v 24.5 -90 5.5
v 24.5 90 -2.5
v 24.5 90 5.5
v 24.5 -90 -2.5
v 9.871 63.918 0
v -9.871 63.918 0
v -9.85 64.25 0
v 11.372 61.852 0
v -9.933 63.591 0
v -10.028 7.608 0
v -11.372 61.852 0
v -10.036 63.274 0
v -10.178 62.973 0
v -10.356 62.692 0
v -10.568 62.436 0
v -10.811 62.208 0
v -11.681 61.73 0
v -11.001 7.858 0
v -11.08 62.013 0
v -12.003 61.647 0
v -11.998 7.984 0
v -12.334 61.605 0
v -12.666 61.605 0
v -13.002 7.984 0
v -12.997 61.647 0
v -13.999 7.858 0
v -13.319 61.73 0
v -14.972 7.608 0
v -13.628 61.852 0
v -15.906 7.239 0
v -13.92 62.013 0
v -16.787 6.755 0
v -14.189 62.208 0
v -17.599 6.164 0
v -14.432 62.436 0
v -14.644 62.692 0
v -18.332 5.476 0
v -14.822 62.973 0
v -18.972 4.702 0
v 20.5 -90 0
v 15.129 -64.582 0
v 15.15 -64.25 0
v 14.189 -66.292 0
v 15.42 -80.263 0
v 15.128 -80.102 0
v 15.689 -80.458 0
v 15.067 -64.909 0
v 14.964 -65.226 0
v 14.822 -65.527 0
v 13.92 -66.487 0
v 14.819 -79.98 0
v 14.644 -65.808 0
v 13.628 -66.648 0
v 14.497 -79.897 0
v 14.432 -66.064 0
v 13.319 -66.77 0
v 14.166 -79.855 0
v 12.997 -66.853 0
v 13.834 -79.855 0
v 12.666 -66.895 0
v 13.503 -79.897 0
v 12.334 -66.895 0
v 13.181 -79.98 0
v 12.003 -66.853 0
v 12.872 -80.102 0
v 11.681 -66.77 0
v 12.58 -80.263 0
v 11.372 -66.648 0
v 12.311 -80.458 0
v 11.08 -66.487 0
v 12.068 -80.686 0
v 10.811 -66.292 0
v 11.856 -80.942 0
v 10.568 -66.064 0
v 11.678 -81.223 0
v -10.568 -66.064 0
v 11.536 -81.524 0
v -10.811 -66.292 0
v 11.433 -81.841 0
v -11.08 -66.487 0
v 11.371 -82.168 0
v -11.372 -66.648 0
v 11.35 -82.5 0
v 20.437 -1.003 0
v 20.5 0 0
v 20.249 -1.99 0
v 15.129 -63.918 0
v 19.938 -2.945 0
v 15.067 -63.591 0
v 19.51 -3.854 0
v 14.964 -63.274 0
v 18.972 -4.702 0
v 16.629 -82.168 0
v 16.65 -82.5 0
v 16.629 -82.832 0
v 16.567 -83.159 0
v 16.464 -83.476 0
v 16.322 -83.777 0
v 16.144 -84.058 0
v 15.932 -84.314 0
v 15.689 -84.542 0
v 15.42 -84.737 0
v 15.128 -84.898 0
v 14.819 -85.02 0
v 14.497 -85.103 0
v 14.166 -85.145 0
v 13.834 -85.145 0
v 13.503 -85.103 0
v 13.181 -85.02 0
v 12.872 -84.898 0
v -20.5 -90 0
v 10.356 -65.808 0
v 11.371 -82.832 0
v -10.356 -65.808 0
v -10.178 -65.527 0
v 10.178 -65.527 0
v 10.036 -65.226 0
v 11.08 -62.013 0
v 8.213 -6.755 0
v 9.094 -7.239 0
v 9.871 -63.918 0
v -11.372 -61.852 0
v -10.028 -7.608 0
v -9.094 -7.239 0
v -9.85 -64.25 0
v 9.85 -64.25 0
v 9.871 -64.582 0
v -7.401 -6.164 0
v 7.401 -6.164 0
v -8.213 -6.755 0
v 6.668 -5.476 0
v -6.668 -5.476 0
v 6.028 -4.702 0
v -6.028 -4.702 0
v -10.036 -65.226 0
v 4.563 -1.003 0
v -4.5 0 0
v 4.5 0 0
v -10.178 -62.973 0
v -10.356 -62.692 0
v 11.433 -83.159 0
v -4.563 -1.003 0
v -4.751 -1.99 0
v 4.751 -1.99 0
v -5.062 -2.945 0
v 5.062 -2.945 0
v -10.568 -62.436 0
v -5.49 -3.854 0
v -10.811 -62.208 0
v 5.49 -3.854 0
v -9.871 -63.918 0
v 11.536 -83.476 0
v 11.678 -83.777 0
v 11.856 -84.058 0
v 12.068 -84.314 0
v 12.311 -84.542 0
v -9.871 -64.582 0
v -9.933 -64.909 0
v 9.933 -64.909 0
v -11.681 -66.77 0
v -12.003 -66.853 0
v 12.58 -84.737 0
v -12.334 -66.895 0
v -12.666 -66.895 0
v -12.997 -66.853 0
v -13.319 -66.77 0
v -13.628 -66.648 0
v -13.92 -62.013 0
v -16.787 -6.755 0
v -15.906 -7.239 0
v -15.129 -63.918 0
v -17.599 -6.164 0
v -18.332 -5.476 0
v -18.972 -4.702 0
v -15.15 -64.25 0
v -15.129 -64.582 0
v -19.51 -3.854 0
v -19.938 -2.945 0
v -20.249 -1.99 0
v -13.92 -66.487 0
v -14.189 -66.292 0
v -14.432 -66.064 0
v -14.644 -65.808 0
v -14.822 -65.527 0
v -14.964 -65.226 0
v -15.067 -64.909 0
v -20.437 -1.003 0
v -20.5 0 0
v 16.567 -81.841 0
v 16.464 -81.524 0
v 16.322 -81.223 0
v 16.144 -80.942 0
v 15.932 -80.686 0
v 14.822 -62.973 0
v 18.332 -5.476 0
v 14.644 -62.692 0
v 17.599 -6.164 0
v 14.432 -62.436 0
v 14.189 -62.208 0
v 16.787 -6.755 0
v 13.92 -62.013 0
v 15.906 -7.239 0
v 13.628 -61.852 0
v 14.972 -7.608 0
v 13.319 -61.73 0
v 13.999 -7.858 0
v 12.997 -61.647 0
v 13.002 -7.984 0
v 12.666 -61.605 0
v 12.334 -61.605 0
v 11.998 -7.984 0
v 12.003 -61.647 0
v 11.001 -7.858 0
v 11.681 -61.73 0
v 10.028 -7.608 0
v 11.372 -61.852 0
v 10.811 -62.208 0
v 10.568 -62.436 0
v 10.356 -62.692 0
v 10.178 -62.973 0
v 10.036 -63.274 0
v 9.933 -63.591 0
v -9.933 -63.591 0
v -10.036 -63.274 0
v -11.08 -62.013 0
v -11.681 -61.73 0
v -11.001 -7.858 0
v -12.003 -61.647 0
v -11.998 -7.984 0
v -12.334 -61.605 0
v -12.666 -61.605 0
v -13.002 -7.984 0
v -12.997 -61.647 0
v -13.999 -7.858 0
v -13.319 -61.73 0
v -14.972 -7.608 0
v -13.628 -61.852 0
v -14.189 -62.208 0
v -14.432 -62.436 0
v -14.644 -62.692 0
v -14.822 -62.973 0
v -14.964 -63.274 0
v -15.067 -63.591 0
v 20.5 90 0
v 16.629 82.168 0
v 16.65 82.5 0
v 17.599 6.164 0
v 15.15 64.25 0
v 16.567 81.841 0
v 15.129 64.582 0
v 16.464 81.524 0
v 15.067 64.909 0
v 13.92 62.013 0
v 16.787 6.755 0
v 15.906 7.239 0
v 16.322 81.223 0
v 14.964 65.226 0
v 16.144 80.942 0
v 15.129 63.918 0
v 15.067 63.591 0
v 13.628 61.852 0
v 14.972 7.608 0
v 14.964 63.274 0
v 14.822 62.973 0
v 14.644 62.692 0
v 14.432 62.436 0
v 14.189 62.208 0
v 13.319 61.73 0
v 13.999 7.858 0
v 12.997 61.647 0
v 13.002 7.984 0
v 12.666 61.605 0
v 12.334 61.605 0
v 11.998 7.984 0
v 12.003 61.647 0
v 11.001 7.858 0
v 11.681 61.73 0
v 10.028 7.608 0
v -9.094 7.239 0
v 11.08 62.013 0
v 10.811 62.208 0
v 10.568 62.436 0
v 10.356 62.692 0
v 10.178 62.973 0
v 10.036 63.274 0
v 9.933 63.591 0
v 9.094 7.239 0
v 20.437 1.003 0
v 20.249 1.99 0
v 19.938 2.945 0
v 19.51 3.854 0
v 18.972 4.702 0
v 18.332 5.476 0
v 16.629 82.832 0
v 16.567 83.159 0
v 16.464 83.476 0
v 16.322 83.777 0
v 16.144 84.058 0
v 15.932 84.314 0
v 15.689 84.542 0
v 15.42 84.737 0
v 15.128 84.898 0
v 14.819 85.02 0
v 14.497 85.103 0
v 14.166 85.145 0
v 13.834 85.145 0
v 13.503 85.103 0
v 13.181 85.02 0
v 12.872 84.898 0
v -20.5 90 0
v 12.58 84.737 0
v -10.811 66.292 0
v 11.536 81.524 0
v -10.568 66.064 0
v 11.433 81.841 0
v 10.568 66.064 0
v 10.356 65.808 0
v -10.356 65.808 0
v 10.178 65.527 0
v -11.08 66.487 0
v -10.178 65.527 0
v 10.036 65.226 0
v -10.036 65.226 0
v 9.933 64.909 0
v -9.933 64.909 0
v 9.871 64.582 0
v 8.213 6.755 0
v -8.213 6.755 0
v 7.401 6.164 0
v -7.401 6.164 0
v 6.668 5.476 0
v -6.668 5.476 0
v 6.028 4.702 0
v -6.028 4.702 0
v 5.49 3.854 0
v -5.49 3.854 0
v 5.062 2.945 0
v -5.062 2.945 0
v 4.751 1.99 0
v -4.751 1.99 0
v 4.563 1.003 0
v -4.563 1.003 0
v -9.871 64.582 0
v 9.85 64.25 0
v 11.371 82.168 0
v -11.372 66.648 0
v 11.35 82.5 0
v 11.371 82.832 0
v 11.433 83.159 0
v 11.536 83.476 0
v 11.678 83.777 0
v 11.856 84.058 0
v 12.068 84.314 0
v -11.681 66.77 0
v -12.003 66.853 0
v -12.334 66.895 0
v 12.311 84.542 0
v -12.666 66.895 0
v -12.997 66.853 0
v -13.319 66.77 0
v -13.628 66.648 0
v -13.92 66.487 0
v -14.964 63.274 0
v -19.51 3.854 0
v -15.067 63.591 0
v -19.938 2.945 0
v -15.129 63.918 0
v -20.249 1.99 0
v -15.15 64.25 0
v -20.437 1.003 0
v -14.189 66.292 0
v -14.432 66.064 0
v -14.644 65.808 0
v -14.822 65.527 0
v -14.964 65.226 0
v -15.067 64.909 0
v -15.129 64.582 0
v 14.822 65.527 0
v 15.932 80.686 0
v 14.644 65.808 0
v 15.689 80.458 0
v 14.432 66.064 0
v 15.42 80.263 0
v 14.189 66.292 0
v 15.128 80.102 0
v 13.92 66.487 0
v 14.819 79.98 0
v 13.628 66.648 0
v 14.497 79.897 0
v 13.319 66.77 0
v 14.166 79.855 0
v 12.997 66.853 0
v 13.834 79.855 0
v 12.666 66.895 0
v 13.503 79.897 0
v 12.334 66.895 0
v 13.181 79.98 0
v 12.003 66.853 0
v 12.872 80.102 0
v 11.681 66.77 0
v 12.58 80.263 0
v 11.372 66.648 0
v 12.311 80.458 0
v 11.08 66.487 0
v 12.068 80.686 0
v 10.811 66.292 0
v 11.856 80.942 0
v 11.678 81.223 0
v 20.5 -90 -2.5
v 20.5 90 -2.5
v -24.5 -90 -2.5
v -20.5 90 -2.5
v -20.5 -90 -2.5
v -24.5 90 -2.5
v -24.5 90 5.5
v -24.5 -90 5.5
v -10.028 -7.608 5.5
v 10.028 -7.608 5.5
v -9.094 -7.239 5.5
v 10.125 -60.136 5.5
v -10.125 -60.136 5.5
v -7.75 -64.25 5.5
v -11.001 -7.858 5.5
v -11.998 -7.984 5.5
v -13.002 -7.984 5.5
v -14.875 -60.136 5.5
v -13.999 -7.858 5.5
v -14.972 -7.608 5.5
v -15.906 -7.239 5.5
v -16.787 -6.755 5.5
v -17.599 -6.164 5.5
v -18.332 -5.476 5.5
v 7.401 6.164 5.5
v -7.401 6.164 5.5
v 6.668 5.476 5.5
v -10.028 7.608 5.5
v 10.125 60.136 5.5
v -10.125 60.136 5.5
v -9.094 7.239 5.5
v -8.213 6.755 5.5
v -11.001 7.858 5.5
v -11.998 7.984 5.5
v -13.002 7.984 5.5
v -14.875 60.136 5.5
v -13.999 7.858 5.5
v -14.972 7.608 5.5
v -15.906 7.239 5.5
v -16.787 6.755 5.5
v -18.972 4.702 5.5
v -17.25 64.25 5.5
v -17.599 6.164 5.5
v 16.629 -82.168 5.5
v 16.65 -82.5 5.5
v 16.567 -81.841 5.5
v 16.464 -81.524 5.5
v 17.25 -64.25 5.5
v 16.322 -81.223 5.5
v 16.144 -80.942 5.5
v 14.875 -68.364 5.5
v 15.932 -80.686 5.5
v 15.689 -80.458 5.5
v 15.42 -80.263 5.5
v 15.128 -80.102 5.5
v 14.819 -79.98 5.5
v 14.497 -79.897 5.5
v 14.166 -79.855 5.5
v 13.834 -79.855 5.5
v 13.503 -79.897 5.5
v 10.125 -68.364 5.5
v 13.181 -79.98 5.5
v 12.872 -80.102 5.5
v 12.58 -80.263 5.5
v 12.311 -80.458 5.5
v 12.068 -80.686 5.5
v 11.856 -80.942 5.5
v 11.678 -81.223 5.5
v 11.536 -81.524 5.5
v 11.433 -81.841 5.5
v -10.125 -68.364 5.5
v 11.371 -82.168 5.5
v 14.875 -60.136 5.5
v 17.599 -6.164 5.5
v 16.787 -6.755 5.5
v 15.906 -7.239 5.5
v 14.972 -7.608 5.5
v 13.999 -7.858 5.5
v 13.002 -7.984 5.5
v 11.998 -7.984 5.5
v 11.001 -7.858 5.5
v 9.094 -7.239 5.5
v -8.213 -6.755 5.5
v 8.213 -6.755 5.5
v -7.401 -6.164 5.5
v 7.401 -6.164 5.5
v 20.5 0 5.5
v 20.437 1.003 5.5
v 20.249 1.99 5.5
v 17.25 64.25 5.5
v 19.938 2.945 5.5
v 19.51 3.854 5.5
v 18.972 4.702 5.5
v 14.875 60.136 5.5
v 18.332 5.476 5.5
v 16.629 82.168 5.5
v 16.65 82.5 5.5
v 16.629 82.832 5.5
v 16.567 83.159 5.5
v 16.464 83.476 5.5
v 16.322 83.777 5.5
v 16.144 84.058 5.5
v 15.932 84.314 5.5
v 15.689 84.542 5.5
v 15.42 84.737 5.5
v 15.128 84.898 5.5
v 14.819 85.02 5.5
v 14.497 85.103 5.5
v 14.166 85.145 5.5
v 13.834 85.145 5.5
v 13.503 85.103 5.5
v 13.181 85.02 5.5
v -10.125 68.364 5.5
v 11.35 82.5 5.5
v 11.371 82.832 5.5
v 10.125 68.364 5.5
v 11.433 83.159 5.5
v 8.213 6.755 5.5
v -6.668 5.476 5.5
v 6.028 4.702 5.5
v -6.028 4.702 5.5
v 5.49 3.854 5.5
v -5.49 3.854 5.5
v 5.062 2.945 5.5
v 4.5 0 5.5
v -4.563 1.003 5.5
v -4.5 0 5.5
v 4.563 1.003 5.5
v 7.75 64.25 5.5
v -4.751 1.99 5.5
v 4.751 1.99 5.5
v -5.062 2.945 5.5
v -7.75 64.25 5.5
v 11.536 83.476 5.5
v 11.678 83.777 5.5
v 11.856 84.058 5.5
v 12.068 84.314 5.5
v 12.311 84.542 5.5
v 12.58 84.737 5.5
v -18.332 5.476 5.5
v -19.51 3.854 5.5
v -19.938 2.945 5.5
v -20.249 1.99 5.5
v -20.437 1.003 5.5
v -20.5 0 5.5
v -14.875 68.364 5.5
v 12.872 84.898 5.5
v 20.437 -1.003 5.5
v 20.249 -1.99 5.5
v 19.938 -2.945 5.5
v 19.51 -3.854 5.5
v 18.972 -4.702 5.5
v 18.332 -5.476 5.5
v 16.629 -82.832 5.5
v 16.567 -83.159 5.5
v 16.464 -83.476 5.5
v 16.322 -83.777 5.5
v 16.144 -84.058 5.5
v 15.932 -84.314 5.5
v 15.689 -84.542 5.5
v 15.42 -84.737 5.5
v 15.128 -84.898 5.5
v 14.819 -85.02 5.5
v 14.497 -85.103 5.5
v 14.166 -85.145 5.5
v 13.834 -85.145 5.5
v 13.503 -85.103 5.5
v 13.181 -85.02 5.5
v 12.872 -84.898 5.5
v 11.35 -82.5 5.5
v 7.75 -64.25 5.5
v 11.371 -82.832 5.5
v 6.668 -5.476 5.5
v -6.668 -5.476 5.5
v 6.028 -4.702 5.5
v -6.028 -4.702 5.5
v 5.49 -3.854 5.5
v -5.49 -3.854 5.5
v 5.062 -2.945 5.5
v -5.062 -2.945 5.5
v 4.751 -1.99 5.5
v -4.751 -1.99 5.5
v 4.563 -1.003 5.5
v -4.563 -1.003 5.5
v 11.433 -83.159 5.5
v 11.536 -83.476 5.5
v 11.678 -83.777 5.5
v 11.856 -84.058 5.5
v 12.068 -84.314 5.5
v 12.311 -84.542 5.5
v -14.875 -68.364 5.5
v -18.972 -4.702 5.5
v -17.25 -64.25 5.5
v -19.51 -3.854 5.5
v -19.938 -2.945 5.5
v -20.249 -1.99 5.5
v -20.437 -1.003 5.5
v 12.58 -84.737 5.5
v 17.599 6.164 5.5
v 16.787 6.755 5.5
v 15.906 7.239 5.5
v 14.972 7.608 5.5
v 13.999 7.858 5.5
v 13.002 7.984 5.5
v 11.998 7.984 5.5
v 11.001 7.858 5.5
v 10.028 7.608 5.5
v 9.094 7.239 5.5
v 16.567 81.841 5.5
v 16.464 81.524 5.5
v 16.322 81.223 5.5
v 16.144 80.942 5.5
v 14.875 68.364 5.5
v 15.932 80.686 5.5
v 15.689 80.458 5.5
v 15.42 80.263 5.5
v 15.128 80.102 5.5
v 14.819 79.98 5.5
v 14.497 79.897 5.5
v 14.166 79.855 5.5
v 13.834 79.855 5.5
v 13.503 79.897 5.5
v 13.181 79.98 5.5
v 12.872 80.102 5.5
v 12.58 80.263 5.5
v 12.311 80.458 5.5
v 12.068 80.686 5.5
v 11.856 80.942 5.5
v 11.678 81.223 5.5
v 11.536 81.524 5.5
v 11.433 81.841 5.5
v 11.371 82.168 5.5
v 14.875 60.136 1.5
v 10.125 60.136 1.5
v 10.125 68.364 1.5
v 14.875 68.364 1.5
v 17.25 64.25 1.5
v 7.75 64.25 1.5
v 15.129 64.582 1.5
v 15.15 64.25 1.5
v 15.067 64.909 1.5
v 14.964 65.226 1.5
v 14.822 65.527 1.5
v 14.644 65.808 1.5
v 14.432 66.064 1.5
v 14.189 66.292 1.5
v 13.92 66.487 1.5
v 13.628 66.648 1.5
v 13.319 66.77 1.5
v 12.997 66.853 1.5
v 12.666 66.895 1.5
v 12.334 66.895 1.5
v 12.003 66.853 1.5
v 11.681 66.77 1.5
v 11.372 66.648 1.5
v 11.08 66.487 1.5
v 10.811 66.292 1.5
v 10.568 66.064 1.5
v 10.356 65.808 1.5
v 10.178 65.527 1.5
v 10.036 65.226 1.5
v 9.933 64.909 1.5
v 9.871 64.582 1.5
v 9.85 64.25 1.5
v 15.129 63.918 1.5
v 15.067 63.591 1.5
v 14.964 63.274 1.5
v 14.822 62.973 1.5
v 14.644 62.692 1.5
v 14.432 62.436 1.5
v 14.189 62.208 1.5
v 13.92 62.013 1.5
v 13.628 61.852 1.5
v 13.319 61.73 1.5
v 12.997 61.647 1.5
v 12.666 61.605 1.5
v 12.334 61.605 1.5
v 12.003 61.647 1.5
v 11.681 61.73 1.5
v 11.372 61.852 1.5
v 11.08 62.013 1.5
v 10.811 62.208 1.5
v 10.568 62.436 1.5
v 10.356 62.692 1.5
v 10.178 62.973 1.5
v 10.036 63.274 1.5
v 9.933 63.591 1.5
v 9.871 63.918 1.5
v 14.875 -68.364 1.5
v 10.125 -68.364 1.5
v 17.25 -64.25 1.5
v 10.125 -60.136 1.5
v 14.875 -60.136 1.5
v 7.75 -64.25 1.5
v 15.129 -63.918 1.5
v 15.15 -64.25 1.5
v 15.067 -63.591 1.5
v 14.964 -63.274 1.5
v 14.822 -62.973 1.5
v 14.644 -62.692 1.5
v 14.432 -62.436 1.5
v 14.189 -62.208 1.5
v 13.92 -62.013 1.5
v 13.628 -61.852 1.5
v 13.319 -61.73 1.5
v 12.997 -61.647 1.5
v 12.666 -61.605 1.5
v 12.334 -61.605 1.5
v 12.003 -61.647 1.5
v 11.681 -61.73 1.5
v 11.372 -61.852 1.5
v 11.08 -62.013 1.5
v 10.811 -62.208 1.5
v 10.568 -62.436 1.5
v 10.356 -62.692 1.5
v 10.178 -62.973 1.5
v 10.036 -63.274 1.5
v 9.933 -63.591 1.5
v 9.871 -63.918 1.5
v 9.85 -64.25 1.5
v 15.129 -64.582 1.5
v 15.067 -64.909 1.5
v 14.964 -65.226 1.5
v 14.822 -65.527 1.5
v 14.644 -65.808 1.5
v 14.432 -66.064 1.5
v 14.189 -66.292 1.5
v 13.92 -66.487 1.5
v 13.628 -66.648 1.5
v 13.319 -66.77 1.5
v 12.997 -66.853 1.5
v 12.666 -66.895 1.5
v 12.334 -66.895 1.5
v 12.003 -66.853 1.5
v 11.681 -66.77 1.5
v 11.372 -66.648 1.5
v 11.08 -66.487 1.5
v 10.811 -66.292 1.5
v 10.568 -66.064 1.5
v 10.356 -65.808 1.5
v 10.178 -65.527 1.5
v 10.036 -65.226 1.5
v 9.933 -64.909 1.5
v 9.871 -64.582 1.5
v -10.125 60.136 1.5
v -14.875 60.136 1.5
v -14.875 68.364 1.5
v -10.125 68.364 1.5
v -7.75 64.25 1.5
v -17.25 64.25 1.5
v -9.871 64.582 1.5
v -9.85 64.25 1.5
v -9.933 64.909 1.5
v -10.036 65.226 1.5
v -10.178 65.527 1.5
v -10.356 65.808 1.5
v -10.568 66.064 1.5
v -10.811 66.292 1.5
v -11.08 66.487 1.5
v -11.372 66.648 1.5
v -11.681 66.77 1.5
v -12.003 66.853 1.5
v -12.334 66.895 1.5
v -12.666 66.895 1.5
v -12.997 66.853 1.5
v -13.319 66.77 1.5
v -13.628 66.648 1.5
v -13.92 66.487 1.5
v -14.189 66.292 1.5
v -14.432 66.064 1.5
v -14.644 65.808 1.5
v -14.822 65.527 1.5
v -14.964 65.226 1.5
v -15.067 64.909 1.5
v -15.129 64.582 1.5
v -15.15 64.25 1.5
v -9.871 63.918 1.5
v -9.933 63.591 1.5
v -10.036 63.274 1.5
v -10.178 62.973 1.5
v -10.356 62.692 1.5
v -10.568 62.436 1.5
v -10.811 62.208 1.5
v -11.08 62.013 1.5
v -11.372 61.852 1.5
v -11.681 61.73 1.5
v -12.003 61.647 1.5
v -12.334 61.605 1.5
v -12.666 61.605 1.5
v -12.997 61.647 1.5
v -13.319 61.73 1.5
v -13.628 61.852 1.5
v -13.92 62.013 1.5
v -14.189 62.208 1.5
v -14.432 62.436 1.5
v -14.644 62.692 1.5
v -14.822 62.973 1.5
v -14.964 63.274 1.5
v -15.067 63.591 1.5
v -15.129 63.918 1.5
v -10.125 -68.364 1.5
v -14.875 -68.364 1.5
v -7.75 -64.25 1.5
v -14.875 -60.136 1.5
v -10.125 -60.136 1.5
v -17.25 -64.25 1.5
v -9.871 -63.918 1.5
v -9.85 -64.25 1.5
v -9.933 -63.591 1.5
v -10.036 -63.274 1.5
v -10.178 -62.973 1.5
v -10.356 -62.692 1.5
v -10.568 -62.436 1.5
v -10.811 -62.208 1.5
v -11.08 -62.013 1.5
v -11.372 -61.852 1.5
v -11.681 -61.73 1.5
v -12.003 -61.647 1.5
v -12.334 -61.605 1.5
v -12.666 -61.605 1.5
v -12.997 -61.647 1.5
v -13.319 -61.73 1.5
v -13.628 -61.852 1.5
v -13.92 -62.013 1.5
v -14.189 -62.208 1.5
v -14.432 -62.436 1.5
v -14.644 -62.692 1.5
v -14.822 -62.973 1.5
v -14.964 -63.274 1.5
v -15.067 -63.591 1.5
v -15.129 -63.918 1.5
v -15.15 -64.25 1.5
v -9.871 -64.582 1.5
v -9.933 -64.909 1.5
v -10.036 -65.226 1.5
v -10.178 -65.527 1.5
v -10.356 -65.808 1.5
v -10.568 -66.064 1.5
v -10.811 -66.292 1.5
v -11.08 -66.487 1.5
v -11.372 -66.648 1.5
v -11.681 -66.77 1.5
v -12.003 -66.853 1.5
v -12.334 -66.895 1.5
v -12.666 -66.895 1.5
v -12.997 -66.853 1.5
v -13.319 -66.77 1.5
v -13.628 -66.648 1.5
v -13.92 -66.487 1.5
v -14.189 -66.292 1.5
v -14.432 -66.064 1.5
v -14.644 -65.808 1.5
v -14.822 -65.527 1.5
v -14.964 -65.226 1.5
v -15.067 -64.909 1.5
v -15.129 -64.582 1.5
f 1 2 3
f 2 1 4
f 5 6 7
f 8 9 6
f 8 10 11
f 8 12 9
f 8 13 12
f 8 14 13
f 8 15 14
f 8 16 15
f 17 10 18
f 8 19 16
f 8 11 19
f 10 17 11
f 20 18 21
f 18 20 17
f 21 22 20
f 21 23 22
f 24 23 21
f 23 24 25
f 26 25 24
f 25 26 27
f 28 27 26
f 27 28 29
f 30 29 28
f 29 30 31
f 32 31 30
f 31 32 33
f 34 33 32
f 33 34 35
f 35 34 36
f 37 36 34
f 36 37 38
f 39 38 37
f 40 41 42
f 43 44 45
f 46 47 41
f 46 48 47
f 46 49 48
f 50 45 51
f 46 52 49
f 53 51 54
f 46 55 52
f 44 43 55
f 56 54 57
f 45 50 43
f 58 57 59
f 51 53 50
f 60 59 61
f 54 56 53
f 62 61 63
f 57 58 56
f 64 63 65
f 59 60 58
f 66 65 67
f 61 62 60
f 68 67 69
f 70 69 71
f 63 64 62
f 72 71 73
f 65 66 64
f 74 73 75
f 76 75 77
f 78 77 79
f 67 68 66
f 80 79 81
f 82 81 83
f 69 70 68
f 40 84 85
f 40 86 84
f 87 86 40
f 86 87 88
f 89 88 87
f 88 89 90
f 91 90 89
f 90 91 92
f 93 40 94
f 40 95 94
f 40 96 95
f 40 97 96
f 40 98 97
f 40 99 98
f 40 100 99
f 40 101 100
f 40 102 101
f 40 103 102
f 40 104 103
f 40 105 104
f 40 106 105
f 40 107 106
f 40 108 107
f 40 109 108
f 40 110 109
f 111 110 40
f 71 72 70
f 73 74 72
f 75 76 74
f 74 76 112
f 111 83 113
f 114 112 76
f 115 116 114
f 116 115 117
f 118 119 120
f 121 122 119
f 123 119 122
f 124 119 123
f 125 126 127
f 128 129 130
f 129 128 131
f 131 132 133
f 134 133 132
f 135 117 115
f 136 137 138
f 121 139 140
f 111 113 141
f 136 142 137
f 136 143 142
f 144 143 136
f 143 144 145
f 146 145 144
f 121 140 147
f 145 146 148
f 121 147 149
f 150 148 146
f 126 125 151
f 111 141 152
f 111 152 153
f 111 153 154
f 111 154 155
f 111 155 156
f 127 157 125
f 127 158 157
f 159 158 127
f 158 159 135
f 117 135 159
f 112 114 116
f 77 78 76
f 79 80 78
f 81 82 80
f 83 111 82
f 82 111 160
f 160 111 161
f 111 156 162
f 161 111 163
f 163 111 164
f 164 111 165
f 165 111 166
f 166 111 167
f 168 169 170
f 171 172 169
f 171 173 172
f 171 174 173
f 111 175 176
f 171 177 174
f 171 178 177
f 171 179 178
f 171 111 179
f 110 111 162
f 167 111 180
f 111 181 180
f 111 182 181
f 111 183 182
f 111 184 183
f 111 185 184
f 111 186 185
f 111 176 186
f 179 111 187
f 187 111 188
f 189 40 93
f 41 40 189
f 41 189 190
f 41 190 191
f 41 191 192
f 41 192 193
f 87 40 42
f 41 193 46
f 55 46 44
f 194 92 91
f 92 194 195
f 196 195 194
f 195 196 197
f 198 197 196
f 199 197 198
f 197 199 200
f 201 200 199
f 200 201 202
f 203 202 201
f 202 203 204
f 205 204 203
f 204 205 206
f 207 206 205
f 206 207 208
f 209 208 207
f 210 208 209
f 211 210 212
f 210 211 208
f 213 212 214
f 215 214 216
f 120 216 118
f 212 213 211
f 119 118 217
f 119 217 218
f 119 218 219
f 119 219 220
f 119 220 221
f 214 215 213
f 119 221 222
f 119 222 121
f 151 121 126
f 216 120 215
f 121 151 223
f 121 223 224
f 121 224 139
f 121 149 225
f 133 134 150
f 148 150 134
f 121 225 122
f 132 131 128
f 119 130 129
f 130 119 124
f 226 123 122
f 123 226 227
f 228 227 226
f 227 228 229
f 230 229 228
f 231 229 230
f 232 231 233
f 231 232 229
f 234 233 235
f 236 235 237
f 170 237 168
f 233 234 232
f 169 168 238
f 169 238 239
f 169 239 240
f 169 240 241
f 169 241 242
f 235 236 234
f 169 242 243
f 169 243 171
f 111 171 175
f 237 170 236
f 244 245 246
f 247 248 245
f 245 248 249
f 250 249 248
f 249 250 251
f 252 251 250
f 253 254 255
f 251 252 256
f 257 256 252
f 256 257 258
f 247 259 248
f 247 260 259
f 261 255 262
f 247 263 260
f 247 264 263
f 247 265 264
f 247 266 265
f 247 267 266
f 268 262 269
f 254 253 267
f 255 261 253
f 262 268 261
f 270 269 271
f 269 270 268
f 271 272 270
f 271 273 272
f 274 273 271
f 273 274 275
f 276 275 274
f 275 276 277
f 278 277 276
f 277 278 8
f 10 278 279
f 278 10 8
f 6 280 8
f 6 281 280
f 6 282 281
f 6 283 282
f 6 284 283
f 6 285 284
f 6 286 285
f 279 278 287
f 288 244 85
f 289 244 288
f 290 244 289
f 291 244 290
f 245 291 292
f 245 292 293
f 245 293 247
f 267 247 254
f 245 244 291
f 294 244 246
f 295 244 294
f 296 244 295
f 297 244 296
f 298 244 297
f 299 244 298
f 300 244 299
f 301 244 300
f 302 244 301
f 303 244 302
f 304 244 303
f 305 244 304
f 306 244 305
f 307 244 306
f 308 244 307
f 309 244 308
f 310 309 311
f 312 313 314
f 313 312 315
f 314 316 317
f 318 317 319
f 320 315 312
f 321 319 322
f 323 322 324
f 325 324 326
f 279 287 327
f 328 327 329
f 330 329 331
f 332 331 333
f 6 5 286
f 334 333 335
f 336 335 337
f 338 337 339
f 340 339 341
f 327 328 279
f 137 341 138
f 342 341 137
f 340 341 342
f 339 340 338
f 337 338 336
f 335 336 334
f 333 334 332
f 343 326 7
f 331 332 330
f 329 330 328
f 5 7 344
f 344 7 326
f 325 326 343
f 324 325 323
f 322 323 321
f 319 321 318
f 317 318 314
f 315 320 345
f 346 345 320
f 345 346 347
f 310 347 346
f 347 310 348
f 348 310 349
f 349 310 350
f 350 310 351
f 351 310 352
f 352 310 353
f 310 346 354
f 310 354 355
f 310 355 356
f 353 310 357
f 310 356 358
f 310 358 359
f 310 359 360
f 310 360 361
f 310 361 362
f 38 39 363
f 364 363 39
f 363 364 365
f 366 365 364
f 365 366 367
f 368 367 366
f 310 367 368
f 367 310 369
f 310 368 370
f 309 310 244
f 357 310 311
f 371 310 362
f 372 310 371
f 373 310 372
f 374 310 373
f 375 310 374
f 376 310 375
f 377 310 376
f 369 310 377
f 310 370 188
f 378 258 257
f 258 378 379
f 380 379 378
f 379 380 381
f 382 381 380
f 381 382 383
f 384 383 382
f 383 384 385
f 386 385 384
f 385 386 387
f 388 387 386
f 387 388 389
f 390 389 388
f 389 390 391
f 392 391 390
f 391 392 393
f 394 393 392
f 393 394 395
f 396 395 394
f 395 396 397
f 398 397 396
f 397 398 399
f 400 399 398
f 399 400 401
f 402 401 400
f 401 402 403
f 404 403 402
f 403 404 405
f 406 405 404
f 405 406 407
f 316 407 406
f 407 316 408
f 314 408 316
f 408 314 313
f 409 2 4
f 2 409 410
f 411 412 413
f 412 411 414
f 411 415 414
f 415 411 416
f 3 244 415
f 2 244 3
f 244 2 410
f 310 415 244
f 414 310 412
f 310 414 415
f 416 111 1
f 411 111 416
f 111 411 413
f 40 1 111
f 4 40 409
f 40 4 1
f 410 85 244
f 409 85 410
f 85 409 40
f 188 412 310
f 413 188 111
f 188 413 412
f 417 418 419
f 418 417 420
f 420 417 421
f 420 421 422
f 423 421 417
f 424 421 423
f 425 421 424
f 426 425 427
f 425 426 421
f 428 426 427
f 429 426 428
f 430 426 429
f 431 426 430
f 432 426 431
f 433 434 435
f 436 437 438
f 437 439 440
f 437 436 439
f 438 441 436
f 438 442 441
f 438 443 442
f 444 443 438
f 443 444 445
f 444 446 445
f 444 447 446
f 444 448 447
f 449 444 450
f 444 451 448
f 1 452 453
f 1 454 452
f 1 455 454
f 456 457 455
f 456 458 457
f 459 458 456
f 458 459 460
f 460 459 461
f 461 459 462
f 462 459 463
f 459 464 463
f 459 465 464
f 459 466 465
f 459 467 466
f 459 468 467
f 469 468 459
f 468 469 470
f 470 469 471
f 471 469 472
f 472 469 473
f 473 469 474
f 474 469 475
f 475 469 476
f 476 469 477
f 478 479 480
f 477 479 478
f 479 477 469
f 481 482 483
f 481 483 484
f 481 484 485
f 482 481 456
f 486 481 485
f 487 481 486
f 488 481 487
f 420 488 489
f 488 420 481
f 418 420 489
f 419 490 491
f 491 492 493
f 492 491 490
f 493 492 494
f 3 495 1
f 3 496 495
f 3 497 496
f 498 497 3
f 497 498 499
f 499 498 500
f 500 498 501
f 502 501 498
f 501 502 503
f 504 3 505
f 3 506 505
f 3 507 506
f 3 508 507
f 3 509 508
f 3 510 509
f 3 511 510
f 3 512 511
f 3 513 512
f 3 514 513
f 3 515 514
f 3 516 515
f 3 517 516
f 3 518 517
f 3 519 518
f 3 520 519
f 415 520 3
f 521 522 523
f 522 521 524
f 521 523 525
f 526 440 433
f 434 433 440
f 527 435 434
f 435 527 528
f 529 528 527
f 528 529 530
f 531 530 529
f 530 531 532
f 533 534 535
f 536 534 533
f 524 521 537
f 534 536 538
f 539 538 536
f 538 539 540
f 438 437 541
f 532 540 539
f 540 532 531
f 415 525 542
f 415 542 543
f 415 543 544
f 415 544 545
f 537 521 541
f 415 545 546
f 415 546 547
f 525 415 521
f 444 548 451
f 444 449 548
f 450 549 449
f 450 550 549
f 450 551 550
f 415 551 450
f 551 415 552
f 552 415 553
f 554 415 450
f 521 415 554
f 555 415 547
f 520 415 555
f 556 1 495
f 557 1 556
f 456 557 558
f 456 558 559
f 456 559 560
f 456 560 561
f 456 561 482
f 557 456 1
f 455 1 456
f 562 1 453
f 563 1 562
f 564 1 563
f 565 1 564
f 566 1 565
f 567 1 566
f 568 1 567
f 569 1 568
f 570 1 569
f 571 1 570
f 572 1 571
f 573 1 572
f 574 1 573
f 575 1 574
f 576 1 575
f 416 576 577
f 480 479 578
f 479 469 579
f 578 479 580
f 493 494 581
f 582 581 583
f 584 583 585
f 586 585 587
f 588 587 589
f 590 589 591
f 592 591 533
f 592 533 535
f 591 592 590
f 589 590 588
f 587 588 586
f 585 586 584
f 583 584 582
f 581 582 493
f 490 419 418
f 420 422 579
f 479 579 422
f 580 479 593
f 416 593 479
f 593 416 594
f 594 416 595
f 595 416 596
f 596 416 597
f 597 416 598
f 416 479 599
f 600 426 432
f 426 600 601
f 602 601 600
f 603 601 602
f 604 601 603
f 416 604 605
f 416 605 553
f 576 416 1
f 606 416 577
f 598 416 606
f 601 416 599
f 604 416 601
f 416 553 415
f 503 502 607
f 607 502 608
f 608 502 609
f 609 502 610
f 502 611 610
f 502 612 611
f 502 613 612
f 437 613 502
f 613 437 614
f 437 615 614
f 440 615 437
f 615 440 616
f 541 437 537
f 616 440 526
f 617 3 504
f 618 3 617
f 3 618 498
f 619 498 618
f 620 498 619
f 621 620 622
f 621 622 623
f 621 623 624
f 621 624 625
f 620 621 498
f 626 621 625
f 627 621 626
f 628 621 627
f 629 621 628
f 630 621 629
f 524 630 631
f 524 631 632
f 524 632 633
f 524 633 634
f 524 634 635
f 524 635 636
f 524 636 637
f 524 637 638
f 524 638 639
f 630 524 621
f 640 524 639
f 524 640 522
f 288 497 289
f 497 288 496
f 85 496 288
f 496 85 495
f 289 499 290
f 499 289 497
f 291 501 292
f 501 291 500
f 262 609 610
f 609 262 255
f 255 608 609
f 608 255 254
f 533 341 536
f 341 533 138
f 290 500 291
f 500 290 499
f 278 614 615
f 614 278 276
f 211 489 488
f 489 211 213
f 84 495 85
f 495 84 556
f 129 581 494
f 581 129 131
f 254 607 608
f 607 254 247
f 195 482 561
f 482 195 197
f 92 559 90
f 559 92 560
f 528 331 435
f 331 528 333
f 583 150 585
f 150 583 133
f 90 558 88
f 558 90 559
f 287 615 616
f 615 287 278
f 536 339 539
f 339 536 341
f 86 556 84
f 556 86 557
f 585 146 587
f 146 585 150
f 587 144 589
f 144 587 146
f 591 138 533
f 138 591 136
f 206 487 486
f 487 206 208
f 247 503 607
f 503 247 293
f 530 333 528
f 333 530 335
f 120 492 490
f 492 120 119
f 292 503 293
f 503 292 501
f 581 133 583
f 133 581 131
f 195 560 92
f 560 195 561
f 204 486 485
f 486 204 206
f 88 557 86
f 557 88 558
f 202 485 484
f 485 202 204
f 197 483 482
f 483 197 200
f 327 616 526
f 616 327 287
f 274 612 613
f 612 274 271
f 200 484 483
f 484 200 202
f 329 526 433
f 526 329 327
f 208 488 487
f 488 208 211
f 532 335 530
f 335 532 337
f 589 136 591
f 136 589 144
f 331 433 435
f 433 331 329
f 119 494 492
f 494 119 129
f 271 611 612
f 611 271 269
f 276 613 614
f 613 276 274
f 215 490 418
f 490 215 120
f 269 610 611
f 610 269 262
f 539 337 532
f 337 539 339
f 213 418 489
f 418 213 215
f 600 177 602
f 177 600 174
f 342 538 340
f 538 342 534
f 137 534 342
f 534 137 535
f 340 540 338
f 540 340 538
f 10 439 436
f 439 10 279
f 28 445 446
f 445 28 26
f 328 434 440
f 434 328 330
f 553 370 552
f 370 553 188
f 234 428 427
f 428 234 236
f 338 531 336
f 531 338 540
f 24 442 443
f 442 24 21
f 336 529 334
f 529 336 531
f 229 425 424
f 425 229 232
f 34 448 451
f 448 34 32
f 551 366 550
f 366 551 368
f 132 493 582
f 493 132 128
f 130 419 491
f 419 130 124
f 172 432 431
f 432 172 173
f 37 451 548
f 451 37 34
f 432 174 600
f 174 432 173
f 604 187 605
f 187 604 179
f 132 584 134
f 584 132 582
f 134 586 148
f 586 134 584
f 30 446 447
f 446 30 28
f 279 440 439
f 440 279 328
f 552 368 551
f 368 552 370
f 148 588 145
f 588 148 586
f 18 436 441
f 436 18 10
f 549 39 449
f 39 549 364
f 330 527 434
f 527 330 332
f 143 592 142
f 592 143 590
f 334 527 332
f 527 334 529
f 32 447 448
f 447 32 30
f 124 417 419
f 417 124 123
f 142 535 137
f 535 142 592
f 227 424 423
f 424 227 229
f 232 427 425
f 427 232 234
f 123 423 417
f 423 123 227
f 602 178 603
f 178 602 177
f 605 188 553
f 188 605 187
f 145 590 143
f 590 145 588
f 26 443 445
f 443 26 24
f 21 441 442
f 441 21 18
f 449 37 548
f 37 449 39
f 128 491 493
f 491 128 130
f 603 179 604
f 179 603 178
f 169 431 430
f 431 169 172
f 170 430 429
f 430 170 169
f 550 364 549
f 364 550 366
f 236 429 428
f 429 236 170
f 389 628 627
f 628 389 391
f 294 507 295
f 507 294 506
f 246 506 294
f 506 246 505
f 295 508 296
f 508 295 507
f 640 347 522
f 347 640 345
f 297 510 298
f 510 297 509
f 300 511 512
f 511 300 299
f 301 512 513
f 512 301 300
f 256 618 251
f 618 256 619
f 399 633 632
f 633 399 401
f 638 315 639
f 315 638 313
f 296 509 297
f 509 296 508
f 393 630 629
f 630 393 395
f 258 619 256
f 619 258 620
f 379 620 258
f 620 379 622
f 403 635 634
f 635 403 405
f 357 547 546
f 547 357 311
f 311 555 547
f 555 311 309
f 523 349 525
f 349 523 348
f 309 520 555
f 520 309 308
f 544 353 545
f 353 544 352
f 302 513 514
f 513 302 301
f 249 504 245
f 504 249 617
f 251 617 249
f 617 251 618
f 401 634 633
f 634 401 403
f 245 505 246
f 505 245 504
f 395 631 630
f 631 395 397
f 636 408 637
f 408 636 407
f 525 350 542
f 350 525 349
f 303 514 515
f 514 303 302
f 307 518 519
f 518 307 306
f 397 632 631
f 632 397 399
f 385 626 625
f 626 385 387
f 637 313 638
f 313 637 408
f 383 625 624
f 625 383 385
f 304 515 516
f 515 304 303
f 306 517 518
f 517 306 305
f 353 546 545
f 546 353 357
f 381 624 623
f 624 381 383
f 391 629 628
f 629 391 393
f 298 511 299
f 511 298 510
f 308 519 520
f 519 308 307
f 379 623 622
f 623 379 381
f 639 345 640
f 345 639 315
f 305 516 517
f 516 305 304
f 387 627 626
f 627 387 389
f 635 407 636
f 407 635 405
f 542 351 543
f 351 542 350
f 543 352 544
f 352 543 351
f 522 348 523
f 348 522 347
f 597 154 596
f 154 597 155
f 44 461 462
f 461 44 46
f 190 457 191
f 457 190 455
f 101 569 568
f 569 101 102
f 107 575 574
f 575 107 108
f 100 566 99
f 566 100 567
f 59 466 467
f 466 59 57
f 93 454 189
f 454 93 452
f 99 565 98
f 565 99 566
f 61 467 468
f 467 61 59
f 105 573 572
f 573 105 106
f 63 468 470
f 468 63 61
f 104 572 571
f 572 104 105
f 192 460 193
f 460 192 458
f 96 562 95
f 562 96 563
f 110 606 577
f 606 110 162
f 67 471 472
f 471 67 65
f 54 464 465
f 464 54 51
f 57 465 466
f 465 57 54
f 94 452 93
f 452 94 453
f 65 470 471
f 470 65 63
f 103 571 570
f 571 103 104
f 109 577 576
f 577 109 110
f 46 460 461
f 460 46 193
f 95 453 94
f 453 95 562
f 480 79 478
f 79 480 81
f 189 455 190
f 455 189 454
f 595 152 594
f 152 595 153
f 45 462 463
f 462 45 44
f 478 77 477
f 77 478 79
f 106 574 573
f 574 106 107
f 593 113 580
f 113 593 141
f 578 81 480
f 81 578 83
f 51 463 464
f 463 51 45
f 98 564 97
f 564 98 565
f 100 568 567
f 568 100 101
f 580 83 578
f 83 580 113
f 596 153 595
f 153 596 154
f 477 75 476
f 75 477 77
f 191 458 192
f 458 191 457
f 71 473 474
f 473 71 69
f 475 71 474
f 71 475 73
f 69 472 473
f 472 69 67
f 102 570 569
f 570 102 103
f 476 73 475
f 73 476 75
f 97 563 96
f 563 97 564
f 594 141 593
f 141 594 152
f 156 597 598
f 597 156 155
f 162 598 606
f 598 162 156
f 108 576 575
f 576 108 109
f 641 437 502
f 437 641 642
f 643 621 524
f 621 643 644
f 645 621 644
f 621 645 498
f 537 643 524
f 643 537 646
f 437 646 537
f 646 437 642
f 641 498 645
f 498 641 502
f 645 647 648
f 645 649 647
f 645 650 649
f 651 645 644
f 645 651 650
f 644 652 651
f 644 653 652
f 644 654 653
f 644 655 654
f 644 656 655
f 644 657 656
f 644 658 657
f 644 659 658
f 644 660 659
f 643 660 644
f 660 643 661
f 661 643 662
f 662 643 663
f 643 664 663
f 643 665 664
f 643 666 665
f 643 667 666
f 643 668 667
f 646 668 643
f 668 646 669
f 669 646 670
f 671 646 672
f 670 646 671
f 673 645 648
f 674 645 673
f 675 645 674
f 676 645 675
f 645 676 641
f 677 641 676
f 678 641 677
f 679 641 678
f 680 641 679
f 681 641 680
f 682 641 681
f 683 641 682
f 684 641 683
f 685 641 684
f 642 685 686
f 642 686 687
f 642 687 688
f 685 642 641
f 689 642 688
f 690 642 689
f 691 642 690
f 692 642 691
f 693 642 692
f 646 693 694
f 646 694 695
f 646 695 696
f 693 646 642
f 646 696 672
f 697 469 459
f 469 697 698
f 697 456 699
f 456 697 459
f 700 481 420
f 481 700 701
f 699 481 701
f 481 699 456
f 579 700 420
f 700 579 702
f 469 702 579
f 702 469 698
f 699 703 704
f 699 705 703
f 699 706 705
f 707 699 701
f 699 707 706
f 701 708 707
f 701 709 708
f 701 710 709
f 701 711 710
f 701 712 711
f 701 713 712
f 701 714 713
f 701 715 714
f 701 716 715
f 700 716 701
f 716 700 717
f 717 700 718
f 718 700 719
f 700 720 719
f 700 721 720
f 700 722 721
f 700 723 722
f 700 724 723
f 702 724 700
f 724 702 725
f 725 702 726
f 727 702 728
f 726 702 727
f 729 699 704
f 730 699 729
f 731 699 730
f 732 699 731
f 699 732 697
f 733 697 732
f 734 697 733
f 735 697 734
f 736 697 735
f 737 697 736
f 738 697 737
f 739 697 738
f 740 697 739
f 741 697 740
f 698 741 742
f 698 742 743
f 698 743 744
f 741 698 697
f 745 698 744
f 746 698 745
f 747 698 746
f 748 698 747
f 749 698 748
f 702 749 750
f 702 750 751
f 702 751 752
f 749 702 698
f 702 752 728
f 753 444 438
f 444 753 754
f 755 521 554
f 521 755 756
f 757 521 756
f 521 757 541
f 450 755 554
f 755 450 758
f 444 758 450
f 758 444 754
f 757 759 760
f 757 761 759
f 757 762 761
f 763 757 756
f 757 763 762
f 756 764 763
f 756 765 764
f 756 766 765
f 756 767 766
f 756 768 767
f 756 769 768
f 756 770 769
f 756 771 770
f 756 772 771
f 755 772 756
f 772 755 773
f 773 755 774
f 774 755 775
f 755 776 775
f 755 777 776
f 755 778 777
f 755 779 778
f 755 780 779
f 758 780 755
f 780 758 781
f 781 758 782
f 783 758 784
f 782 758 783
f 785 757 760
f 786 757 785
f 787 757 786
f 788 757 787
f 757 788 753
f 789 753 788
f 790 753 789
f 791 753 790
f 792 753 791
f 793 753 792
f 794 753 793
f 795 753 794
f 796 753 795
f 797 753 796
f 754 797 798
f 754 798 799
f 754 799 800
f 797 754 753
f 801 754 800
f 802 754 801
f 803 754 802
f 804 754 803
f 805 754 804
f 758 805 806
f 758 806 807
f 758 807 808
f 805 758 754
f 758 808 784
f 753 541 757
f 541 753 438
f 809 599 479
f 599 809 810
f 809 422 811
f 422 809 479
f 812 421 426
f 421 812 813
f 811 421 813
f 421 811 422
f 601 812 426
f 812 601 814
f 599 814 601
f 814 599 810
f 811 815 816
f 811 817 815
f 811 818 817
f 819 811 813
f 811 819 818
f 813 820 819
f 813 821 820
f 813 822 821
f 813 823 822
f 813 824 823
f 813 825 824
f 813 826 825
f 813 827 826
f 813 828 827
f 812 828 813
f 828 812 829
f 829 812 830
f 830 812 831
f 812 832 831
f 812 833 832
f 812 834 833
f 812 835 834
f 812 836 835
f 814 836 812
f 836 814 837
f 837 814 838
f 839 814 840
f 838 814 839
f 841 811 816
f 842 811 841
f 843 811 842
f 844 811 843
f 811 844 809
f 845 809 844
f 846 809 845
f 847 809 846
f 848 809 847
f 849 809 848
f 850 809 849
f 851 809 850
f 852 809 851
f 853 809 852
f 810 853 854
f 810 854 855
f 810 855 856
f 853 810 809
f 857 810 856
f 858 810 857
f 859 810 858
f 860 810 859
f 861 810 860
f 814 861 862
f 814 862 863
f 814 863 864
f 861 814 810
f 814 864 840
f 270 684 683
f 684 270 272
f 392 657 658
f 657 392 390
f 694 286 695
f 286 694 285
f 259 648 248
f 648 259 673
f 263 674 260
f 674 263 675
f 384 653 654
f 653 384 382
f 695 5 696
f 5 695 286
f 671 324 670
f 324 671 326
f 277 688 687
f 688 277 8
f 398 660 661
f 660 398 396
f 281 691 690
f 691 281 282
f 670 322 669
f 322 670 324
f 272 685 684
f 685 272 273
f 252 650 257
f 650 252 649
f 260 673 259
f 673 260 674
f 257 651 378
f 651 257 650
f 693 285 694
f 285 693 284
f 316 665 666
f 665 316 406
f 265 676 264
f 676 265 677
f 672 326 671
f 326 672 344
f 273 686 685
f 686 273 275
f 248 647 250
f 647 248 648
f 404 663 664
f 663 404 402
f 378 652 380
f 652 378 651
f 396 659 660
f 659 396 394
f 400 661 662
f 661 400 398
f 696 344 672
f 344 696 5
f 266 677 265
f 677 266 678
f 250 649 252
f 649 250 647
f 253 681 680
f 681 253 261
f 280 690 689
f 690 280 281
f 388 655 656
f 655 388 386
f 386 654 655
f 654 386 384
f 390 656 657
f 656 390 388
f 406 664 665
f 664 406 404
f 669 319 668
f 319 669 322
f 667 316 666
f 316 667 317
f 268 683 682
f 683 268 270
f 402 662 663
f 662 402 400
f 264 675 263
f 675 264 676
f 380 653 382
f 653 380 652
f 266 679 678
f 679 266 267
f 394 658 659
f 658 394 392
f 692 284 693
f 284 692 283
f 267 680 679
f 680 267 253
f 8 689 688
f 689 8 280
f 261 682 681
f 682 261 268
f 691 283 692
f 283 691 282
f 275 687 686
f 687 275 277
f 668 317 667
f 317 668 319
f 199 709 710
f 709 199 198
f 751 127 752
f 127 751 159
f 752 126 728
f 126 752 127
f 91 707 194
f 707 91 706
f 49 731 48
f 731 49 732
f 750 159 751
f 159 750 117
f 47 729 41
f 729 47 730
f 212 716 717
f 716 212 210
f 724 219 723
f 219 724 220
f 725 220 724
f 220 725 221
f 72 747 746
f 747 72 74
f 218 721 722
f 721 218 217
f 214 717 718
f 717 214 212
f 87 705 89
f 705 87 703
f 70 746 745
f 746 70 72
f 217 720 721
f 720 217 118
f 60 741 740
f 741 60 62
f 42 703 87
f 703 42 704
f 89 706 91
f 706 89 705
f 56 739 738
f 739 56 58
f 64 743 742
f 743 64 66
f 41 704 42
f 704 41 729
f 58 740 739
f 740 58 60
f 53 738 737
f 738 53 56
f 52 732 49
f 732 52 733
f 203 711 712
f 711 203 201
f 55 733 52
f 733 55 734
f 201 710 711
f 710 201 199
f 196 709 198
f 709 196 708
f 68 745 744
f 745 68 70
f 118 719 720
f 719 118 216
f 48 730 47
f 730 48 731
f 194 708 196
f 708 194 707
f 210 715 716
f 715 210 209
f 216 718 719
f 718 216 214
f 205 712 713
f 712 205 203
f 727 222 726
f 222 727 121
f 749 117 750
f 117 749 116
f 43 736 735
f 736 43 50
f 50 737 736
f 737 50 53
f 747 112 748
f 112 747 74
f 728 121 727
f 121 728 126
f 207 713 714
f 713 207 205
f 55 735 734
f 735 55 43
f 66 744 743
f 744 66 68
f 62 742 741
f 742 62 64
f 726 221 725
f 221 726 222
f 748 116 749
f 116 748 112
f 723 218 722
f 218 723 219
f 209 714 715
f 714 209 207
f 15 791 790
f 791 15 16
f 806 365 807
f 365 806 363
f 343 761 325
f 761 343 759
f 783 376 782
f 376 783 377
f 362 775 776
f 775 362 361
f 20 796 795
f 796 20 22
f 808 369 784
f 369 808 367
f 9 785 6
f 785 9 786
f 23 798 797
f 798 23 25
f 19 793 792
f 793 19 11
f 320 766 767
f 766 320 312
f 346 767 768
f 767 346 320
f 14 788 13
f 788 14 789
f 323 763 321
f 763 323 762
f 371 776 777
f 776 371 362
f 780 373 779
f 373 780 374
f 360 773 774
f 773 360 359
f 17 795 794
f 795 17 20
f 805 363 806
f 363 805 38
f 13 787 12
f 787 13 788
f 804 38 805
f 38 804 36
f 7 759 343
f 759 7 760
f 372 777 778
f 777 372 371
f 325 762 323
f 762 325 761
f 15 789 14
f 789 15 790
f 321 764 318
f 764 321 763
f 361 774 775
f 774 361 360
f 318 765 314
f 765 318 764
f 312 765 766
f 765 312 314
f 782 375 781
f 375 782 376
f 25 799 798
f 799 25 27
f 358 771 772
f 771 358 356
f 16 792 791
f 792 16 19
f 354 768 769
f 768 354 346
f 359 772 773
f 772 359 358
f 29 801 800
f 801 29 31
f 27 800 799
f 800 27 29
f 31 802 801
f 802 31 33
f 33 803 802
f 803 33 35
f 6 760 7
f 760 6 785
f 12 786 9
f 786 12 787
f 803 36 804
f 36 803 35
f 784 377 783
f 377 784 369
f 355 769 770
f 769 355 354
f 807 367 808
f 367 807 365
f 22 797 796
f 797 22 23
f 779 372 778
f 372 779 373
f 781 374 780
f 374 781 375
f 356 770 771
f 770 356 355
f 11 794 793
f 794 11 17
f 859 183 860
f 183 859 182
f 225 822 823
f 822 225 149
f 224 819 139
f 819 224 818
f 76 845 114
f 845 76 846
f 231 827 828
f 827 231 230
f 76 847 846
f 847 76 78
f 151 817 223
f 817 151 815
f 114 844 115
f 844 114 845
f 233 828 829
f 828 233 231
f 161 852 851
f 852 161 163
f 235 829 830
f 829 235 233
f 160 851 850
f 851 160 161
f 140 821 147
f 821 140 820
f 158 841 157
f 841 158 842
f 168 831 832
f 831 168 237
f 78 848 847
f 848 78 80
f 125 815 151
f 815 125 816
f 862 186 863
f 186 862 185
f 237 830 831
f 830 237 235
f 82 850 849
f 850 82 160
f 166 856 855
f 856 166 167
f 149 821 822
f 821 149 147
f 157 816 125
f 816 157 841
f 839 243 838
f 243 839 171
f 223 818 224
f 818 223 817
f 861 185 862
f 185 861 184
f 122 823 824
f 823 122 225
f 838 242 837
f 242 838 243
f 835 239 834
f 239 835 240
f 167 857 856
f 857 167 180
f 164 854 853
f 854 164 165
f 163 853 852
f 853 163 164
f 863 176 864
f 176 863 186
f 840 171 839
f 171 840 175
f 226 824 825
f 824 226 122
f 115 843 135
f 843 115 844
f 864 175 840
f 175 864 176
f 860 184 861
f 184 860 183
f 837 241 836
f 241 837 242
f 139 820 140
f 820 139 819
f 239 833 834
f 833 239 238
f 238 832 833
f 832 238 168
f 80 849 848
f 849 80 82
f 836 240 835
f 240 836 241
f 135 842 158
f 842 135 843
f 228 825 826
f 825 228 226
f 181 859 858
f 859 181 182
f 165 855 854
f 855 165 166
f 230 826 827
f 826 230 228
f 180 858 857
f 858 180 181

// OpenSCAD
a = 41;
b = 180;
tloustkaOkraju = 4;
vyskaDesticky=2.5;

translate([0,0,-vyskaDesticky/2])
difference(){
cube([a+2*tloustkaOkraju, b, vyskaDesticky],center = true);
cube([a,b,vyskaDesticky+0.01], center = true);
}


vyskaMatky = 5.5;
difference(){
translate([0,0,vyskaMatky/2])
cube([a+2*tloustkaOkraju,b,vyskaMatky],center = true);

// stred
polomerMale = 13/2;
translate([12.5,0,0])cylinder(h=vyskaMatky, r = polomerMale+1.5,$fn = 50);
translate([-12.5,0,0])cylinder(h=vyskaMatky, r = polomerMale+1.5,$fn = 50);
// na motor
polomerMensi = 9.5/2;
    
// na plech

translate([14,165/2,0])cylinder(h=vyskaMatky, r=5.3/2,$fn=50);
translate([14,-165/2,0])cylinder(h=vyskaMatky, r=5.3/2,$fn=50);

// prichyceni desticky
translate([12.5,63.5+0.75,1.5])cylinder(h=vyskaMatky, r = polomerMensi,$fn = 6);
translate([12.5,-63.5-0.75,1.5])cylinder(h=vyskaMatky, r = polomerMensi,$fn = 6);
translate([-12.5,63.5+0.75,1.5])cylinder(h=vyskaMatky, r = polomerMensi,$fn = 6);
translate([-12.5,-63.5-0.75,1.5])cylinder(h=vyskaMatky, r = polomerMensi,$fn = 6);

translate([12.5,63.5+0.75,0])cylinder(h=vyskaMatky, r = 5.3/2,$fn = 50);
translate([12.5,-63.5-0.75,0])cylinder(h=vyskaMatky, r = 5.3/2,$fn = 50);
translate([-12.5,63.5+0.75,0])cylinder(h=vyskaMatky, r = 5.3/2,$fn = 50);
translate([-12.5,-63.5-0.75,0])cylinder(h=vyskaMatky, r = 5.3/2,$fn = 50);
}
